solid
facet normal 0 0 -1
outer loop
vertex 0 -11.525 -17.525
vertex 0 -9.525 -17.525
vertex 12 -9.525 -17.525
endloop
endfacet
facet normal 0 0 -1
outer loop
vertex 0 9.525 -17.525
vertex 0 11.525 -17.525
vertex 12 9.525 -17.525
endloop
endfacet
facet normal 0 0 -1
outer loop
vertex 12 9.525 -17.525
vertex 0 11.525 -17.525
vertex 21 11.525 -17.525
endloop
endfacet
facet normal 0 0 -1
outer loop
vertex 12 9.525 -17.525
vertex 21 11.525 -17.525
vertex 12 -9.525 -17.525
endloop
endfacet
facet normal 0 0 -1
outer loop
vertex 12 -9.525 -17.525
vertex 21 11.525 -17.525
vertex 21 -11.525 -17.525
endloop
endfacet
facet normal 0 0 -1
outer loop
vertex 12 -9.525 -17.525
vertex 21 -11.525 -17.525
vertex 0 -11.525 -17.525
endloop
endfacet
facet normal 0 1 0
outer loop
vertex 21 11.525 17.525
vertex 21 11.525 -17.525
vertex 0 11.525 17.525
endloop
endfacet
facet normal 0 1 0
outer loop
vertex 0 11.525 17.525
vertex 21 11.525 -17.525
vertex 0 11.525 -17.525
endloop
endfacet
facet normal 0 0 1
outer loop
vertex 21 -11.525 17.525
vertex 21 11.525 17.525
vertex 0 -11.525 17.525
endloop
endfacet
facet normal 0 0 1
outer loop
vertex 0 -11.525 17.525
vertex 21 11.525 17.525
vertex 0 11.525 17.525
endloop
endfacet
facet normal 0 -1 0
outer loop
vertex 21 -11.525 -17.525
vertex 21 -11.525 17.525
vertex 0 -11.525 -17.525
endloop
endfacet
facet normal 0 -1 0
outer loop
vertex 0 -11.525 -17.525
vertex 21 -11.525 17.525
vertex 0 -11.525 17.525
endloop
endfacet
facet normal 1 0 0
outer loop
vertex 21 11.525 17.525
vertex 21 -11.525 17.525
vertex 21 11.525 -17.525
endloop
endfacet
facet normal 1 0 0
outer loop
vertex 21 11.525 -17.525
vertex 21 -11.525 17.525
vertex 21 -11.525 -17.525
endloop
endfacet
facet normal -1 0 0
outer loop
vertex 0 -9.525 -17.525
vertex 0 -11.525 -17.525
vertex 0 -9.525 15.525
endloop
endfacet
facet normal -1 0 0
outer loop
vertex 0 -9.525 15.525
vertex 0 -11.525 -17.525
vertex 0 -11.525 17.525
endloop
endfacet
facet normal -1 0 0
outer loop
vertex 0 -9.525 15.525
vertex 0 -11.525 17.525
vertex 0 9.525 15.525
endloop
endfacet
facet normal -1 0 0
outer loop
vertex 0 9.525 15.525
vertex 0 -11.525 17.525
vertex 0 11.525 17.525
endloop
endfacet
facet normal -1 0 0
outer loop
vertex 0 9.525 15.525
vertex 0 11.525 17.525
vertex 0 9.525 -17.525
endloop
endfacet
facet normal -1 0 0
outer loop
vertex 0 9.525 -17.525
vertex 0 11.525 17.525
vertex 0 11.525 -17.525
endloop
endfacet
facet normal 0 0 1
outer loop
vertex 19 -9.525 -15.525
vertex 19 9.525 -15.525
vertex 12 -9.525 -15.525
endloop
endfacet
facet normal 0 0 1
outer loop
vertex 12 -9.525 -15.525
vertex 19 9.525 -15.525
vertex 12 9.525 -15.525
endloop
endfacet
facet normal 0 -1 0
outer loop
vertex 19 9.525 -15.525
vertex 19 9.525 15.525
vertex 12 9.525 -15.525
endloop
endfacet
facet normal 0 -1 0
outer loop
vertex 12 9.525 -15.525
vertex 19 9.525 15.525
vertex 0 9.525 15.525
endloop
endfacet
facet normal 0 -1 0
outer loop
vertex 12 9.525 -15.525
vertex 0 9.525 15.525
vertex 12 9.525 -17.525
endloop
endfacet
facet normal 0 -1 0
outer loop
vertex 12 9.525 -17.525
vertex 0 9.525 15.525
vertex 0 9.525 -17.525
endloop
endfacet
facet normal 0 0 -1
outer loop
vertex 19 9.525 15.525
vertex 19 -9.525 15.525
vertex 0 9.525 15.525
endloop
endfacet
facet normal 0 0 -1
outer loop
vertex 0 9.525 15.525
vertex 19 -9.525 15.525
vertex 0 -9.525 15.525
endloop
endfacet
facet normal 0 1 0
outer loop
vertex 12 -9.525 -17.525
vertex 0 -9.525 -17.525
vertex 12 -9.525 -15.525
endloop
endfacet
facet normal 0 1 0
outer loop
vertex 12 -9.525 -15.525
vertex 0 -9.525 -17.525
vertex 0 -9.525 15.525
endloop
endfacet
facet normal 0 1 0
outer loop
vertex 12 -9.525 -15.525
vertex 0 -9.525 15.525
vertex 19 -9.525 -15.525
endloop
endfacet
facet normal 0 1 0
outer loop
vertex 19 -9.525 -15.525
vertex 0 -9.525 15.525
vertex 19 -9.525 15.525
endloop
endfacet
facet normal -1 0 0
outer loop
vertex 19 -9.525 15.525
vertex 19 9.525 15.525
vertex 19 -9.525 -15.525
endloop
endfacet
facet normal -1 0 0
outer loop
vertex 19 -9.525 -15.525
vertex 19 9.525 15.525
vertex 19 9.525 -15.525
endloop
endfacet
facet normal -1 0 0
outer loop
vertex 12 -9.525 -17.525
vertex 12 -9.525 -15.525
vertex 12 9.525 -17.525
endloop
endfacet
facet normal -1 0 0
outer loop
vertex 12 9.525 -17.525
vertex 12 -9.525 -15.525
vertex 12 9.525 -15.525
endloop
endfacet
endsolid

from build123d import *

# Parameters (mm, degrees)
SKETCH4_W           = 31.05
SKETCH4_H           = 19.05
BOSS_EXTRUDE1_DEPTH = 19
SHELL1_T            = 2
SKETCH5_W           = 12
SKETCH5_H           = 19.05
CUT_EXTRUDE1_DEPTH  = 2


with BuildPart() as part:
    # Sketch4 → Boss-Extrude1 (new body)
    with BuildSketch(Plane(origin=(0, 0, 0), x_dir=(0, 0, -1), z_dir=(1, 0, 0))):
        Rectangle(SKETCH4_W, SKETCH4_H)
    extrude(amount=BOSS_EXTRUDE1_DEPTH)

    # Shell1
    shell1_openings = [part.faces().sort_by_distance(p)[0] for p in [
        (0, 0, 0),
    ]]
    offset(amount=SHELL1_T, openings=shell1_openings, kind=Kind.INTERSECTION)

    # Sketch5 → Cut-Extrude1 (cut)
    with BuildSketch(Plane(origin=(0, 0, -17.525), x_dir=(-1, 0, 0), z_dir=(0, 0, -1))):
        with Locations((-6, 0)):
            Rectangle(SKETCH5_W, SKETCH5_H)
    extrude(amount=-CUT_EXTRUDE1_DEPTH, mode=Mode.SUBTRACT)


solid = part.part
